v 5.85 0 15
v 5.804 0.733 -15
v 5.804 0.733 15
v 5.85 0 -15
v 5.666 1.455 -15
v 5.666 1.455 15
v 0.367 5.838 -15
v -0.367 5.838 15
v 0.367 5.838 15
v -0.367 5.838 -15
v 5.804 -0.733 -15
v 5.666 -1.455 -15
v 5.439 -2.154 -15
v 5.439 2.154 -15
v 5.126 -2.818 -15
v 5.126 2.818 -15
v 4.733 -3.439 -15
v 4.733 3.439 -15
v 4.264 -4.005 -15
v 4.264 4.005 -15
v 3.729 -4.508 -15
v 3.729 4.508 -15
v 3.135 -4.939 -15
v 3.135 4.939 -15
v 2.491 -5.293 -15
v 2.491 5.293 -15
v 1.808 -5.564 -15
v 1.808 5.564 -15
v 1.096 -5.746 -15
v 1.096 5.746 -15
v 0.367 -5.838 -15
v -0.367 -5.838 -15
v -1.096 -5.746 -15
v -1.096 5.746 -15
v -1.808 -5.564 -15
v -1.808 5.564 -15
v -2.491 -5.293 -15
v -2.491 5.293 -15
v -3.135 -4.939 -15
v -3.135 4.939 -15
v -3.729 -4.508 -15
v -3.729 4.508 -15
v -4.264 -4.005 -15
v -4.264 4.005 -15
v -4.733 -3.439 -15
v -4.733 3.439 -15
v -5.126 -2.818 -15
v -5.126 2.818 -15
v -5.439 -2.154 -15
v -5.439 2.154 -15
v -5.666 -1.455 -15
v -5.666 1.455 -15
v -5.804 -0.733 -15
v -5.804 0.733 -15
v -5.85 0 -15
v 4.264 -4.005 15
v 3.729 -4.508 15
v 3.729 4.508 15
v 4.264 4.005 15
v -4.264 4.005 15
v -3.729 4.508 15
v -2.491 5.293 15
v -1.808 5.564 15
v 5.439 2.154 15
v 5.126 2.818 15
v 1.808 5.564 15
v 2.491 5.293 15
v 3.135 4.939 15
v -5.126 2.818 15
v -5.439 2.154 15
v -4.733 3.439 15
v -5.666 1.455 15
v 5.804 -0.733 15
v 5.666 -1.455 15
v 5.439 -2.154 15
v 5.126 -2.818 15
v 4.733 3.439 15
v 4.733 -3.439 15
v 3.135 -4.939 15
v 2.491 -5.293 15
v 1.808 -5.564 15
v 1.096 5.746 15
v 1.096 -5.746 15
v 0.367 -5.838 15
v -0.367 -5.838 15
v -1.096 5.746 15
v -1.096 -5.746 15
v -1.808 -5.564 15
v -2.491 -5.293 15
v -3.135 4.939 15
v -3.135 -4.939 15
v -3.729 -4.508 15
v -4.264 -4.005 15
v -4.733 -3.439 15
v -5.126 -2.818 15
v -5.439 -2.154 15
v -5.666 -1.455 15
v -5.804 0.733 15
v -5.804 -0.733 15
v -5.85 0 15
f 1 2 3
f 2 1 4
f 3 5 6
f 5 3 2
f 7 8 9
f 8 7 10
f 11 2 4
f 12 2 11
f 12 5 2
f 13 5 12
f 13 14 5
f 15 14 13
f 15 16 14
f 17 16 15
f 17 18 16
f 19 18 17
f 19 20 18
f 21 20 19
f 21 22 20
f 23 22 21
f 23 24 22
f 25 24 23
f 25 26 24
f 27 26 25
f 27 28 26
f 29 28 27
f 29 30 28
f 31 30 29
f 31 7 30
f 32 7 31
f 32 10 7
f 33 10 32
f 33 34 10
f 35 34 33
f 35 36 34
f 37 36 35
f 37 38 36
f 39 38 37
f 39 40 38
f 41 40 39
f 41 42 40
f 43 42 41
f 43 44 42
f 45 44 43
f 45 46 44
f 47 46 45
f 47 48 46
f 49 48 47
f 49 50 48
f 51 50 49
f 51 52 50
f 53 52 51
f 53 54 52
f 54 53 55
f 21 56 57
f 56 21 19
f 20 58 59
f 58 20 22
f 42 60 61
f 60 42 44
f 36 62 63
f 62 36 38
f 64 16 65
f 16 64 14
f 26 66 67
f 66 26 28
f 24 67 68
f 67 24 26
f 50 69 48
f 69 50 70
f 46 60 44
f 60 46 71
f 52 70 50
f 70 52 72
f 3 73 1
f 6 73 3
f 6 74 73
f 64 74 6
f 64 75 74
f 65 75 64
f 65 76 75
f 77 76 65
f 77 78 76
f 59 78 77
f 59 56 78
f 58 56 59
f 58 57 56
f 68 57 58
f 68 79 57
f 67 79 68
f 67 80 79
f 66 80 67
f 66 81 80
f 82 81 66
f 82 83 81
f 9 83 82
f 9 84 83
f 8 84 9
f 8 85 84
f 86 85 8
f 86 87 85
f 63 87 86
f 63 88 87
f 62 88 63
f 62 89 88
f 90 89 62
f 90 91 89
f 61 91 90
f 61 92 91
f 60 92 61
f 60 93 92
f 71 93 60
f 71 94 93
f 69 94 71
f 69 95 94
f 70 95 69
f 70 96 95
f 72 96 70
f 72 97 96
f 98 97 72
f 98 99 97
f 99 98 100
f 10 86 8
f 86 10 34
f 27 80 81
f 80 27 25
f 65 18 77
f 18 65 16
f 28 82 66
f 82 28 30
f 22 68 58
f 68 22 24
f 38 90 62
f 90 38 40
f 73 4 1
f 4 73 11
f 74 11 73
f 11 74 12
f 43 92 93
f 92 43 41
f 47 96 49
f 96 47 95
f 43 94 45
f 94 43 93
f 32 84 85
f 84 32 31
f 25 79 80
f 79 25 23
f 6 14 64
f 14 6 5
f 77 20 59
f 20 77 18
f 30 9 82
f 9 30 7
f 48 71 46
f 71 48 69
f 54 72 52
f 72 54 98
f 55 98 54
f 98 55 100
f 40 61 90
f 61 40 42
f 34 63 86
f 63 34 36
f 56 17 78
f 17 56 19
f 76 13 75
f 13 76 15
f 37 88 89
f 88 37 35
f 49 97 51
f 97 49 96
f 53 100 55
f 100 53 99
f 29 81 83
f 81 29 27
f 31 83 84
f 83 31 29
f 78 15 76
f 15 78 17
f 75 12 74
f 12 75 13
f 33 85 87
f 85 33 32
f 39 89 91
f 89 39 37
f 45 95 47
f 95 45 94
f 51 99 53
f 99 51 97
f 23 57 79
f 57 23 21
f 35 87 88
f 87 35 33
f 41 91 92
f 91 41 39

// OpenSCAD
$fn = 50;


difference() {
	union() {
		translate(v = [0, 0, -15.0000000000]) {
			cylinder(h = 30, r = 5.8500000000);
		}
	}
	union() {
		translate(v = [0, 0, -100.0000000000]) {
			cylinder(h = 200, r = 0);
		}
	}
}
